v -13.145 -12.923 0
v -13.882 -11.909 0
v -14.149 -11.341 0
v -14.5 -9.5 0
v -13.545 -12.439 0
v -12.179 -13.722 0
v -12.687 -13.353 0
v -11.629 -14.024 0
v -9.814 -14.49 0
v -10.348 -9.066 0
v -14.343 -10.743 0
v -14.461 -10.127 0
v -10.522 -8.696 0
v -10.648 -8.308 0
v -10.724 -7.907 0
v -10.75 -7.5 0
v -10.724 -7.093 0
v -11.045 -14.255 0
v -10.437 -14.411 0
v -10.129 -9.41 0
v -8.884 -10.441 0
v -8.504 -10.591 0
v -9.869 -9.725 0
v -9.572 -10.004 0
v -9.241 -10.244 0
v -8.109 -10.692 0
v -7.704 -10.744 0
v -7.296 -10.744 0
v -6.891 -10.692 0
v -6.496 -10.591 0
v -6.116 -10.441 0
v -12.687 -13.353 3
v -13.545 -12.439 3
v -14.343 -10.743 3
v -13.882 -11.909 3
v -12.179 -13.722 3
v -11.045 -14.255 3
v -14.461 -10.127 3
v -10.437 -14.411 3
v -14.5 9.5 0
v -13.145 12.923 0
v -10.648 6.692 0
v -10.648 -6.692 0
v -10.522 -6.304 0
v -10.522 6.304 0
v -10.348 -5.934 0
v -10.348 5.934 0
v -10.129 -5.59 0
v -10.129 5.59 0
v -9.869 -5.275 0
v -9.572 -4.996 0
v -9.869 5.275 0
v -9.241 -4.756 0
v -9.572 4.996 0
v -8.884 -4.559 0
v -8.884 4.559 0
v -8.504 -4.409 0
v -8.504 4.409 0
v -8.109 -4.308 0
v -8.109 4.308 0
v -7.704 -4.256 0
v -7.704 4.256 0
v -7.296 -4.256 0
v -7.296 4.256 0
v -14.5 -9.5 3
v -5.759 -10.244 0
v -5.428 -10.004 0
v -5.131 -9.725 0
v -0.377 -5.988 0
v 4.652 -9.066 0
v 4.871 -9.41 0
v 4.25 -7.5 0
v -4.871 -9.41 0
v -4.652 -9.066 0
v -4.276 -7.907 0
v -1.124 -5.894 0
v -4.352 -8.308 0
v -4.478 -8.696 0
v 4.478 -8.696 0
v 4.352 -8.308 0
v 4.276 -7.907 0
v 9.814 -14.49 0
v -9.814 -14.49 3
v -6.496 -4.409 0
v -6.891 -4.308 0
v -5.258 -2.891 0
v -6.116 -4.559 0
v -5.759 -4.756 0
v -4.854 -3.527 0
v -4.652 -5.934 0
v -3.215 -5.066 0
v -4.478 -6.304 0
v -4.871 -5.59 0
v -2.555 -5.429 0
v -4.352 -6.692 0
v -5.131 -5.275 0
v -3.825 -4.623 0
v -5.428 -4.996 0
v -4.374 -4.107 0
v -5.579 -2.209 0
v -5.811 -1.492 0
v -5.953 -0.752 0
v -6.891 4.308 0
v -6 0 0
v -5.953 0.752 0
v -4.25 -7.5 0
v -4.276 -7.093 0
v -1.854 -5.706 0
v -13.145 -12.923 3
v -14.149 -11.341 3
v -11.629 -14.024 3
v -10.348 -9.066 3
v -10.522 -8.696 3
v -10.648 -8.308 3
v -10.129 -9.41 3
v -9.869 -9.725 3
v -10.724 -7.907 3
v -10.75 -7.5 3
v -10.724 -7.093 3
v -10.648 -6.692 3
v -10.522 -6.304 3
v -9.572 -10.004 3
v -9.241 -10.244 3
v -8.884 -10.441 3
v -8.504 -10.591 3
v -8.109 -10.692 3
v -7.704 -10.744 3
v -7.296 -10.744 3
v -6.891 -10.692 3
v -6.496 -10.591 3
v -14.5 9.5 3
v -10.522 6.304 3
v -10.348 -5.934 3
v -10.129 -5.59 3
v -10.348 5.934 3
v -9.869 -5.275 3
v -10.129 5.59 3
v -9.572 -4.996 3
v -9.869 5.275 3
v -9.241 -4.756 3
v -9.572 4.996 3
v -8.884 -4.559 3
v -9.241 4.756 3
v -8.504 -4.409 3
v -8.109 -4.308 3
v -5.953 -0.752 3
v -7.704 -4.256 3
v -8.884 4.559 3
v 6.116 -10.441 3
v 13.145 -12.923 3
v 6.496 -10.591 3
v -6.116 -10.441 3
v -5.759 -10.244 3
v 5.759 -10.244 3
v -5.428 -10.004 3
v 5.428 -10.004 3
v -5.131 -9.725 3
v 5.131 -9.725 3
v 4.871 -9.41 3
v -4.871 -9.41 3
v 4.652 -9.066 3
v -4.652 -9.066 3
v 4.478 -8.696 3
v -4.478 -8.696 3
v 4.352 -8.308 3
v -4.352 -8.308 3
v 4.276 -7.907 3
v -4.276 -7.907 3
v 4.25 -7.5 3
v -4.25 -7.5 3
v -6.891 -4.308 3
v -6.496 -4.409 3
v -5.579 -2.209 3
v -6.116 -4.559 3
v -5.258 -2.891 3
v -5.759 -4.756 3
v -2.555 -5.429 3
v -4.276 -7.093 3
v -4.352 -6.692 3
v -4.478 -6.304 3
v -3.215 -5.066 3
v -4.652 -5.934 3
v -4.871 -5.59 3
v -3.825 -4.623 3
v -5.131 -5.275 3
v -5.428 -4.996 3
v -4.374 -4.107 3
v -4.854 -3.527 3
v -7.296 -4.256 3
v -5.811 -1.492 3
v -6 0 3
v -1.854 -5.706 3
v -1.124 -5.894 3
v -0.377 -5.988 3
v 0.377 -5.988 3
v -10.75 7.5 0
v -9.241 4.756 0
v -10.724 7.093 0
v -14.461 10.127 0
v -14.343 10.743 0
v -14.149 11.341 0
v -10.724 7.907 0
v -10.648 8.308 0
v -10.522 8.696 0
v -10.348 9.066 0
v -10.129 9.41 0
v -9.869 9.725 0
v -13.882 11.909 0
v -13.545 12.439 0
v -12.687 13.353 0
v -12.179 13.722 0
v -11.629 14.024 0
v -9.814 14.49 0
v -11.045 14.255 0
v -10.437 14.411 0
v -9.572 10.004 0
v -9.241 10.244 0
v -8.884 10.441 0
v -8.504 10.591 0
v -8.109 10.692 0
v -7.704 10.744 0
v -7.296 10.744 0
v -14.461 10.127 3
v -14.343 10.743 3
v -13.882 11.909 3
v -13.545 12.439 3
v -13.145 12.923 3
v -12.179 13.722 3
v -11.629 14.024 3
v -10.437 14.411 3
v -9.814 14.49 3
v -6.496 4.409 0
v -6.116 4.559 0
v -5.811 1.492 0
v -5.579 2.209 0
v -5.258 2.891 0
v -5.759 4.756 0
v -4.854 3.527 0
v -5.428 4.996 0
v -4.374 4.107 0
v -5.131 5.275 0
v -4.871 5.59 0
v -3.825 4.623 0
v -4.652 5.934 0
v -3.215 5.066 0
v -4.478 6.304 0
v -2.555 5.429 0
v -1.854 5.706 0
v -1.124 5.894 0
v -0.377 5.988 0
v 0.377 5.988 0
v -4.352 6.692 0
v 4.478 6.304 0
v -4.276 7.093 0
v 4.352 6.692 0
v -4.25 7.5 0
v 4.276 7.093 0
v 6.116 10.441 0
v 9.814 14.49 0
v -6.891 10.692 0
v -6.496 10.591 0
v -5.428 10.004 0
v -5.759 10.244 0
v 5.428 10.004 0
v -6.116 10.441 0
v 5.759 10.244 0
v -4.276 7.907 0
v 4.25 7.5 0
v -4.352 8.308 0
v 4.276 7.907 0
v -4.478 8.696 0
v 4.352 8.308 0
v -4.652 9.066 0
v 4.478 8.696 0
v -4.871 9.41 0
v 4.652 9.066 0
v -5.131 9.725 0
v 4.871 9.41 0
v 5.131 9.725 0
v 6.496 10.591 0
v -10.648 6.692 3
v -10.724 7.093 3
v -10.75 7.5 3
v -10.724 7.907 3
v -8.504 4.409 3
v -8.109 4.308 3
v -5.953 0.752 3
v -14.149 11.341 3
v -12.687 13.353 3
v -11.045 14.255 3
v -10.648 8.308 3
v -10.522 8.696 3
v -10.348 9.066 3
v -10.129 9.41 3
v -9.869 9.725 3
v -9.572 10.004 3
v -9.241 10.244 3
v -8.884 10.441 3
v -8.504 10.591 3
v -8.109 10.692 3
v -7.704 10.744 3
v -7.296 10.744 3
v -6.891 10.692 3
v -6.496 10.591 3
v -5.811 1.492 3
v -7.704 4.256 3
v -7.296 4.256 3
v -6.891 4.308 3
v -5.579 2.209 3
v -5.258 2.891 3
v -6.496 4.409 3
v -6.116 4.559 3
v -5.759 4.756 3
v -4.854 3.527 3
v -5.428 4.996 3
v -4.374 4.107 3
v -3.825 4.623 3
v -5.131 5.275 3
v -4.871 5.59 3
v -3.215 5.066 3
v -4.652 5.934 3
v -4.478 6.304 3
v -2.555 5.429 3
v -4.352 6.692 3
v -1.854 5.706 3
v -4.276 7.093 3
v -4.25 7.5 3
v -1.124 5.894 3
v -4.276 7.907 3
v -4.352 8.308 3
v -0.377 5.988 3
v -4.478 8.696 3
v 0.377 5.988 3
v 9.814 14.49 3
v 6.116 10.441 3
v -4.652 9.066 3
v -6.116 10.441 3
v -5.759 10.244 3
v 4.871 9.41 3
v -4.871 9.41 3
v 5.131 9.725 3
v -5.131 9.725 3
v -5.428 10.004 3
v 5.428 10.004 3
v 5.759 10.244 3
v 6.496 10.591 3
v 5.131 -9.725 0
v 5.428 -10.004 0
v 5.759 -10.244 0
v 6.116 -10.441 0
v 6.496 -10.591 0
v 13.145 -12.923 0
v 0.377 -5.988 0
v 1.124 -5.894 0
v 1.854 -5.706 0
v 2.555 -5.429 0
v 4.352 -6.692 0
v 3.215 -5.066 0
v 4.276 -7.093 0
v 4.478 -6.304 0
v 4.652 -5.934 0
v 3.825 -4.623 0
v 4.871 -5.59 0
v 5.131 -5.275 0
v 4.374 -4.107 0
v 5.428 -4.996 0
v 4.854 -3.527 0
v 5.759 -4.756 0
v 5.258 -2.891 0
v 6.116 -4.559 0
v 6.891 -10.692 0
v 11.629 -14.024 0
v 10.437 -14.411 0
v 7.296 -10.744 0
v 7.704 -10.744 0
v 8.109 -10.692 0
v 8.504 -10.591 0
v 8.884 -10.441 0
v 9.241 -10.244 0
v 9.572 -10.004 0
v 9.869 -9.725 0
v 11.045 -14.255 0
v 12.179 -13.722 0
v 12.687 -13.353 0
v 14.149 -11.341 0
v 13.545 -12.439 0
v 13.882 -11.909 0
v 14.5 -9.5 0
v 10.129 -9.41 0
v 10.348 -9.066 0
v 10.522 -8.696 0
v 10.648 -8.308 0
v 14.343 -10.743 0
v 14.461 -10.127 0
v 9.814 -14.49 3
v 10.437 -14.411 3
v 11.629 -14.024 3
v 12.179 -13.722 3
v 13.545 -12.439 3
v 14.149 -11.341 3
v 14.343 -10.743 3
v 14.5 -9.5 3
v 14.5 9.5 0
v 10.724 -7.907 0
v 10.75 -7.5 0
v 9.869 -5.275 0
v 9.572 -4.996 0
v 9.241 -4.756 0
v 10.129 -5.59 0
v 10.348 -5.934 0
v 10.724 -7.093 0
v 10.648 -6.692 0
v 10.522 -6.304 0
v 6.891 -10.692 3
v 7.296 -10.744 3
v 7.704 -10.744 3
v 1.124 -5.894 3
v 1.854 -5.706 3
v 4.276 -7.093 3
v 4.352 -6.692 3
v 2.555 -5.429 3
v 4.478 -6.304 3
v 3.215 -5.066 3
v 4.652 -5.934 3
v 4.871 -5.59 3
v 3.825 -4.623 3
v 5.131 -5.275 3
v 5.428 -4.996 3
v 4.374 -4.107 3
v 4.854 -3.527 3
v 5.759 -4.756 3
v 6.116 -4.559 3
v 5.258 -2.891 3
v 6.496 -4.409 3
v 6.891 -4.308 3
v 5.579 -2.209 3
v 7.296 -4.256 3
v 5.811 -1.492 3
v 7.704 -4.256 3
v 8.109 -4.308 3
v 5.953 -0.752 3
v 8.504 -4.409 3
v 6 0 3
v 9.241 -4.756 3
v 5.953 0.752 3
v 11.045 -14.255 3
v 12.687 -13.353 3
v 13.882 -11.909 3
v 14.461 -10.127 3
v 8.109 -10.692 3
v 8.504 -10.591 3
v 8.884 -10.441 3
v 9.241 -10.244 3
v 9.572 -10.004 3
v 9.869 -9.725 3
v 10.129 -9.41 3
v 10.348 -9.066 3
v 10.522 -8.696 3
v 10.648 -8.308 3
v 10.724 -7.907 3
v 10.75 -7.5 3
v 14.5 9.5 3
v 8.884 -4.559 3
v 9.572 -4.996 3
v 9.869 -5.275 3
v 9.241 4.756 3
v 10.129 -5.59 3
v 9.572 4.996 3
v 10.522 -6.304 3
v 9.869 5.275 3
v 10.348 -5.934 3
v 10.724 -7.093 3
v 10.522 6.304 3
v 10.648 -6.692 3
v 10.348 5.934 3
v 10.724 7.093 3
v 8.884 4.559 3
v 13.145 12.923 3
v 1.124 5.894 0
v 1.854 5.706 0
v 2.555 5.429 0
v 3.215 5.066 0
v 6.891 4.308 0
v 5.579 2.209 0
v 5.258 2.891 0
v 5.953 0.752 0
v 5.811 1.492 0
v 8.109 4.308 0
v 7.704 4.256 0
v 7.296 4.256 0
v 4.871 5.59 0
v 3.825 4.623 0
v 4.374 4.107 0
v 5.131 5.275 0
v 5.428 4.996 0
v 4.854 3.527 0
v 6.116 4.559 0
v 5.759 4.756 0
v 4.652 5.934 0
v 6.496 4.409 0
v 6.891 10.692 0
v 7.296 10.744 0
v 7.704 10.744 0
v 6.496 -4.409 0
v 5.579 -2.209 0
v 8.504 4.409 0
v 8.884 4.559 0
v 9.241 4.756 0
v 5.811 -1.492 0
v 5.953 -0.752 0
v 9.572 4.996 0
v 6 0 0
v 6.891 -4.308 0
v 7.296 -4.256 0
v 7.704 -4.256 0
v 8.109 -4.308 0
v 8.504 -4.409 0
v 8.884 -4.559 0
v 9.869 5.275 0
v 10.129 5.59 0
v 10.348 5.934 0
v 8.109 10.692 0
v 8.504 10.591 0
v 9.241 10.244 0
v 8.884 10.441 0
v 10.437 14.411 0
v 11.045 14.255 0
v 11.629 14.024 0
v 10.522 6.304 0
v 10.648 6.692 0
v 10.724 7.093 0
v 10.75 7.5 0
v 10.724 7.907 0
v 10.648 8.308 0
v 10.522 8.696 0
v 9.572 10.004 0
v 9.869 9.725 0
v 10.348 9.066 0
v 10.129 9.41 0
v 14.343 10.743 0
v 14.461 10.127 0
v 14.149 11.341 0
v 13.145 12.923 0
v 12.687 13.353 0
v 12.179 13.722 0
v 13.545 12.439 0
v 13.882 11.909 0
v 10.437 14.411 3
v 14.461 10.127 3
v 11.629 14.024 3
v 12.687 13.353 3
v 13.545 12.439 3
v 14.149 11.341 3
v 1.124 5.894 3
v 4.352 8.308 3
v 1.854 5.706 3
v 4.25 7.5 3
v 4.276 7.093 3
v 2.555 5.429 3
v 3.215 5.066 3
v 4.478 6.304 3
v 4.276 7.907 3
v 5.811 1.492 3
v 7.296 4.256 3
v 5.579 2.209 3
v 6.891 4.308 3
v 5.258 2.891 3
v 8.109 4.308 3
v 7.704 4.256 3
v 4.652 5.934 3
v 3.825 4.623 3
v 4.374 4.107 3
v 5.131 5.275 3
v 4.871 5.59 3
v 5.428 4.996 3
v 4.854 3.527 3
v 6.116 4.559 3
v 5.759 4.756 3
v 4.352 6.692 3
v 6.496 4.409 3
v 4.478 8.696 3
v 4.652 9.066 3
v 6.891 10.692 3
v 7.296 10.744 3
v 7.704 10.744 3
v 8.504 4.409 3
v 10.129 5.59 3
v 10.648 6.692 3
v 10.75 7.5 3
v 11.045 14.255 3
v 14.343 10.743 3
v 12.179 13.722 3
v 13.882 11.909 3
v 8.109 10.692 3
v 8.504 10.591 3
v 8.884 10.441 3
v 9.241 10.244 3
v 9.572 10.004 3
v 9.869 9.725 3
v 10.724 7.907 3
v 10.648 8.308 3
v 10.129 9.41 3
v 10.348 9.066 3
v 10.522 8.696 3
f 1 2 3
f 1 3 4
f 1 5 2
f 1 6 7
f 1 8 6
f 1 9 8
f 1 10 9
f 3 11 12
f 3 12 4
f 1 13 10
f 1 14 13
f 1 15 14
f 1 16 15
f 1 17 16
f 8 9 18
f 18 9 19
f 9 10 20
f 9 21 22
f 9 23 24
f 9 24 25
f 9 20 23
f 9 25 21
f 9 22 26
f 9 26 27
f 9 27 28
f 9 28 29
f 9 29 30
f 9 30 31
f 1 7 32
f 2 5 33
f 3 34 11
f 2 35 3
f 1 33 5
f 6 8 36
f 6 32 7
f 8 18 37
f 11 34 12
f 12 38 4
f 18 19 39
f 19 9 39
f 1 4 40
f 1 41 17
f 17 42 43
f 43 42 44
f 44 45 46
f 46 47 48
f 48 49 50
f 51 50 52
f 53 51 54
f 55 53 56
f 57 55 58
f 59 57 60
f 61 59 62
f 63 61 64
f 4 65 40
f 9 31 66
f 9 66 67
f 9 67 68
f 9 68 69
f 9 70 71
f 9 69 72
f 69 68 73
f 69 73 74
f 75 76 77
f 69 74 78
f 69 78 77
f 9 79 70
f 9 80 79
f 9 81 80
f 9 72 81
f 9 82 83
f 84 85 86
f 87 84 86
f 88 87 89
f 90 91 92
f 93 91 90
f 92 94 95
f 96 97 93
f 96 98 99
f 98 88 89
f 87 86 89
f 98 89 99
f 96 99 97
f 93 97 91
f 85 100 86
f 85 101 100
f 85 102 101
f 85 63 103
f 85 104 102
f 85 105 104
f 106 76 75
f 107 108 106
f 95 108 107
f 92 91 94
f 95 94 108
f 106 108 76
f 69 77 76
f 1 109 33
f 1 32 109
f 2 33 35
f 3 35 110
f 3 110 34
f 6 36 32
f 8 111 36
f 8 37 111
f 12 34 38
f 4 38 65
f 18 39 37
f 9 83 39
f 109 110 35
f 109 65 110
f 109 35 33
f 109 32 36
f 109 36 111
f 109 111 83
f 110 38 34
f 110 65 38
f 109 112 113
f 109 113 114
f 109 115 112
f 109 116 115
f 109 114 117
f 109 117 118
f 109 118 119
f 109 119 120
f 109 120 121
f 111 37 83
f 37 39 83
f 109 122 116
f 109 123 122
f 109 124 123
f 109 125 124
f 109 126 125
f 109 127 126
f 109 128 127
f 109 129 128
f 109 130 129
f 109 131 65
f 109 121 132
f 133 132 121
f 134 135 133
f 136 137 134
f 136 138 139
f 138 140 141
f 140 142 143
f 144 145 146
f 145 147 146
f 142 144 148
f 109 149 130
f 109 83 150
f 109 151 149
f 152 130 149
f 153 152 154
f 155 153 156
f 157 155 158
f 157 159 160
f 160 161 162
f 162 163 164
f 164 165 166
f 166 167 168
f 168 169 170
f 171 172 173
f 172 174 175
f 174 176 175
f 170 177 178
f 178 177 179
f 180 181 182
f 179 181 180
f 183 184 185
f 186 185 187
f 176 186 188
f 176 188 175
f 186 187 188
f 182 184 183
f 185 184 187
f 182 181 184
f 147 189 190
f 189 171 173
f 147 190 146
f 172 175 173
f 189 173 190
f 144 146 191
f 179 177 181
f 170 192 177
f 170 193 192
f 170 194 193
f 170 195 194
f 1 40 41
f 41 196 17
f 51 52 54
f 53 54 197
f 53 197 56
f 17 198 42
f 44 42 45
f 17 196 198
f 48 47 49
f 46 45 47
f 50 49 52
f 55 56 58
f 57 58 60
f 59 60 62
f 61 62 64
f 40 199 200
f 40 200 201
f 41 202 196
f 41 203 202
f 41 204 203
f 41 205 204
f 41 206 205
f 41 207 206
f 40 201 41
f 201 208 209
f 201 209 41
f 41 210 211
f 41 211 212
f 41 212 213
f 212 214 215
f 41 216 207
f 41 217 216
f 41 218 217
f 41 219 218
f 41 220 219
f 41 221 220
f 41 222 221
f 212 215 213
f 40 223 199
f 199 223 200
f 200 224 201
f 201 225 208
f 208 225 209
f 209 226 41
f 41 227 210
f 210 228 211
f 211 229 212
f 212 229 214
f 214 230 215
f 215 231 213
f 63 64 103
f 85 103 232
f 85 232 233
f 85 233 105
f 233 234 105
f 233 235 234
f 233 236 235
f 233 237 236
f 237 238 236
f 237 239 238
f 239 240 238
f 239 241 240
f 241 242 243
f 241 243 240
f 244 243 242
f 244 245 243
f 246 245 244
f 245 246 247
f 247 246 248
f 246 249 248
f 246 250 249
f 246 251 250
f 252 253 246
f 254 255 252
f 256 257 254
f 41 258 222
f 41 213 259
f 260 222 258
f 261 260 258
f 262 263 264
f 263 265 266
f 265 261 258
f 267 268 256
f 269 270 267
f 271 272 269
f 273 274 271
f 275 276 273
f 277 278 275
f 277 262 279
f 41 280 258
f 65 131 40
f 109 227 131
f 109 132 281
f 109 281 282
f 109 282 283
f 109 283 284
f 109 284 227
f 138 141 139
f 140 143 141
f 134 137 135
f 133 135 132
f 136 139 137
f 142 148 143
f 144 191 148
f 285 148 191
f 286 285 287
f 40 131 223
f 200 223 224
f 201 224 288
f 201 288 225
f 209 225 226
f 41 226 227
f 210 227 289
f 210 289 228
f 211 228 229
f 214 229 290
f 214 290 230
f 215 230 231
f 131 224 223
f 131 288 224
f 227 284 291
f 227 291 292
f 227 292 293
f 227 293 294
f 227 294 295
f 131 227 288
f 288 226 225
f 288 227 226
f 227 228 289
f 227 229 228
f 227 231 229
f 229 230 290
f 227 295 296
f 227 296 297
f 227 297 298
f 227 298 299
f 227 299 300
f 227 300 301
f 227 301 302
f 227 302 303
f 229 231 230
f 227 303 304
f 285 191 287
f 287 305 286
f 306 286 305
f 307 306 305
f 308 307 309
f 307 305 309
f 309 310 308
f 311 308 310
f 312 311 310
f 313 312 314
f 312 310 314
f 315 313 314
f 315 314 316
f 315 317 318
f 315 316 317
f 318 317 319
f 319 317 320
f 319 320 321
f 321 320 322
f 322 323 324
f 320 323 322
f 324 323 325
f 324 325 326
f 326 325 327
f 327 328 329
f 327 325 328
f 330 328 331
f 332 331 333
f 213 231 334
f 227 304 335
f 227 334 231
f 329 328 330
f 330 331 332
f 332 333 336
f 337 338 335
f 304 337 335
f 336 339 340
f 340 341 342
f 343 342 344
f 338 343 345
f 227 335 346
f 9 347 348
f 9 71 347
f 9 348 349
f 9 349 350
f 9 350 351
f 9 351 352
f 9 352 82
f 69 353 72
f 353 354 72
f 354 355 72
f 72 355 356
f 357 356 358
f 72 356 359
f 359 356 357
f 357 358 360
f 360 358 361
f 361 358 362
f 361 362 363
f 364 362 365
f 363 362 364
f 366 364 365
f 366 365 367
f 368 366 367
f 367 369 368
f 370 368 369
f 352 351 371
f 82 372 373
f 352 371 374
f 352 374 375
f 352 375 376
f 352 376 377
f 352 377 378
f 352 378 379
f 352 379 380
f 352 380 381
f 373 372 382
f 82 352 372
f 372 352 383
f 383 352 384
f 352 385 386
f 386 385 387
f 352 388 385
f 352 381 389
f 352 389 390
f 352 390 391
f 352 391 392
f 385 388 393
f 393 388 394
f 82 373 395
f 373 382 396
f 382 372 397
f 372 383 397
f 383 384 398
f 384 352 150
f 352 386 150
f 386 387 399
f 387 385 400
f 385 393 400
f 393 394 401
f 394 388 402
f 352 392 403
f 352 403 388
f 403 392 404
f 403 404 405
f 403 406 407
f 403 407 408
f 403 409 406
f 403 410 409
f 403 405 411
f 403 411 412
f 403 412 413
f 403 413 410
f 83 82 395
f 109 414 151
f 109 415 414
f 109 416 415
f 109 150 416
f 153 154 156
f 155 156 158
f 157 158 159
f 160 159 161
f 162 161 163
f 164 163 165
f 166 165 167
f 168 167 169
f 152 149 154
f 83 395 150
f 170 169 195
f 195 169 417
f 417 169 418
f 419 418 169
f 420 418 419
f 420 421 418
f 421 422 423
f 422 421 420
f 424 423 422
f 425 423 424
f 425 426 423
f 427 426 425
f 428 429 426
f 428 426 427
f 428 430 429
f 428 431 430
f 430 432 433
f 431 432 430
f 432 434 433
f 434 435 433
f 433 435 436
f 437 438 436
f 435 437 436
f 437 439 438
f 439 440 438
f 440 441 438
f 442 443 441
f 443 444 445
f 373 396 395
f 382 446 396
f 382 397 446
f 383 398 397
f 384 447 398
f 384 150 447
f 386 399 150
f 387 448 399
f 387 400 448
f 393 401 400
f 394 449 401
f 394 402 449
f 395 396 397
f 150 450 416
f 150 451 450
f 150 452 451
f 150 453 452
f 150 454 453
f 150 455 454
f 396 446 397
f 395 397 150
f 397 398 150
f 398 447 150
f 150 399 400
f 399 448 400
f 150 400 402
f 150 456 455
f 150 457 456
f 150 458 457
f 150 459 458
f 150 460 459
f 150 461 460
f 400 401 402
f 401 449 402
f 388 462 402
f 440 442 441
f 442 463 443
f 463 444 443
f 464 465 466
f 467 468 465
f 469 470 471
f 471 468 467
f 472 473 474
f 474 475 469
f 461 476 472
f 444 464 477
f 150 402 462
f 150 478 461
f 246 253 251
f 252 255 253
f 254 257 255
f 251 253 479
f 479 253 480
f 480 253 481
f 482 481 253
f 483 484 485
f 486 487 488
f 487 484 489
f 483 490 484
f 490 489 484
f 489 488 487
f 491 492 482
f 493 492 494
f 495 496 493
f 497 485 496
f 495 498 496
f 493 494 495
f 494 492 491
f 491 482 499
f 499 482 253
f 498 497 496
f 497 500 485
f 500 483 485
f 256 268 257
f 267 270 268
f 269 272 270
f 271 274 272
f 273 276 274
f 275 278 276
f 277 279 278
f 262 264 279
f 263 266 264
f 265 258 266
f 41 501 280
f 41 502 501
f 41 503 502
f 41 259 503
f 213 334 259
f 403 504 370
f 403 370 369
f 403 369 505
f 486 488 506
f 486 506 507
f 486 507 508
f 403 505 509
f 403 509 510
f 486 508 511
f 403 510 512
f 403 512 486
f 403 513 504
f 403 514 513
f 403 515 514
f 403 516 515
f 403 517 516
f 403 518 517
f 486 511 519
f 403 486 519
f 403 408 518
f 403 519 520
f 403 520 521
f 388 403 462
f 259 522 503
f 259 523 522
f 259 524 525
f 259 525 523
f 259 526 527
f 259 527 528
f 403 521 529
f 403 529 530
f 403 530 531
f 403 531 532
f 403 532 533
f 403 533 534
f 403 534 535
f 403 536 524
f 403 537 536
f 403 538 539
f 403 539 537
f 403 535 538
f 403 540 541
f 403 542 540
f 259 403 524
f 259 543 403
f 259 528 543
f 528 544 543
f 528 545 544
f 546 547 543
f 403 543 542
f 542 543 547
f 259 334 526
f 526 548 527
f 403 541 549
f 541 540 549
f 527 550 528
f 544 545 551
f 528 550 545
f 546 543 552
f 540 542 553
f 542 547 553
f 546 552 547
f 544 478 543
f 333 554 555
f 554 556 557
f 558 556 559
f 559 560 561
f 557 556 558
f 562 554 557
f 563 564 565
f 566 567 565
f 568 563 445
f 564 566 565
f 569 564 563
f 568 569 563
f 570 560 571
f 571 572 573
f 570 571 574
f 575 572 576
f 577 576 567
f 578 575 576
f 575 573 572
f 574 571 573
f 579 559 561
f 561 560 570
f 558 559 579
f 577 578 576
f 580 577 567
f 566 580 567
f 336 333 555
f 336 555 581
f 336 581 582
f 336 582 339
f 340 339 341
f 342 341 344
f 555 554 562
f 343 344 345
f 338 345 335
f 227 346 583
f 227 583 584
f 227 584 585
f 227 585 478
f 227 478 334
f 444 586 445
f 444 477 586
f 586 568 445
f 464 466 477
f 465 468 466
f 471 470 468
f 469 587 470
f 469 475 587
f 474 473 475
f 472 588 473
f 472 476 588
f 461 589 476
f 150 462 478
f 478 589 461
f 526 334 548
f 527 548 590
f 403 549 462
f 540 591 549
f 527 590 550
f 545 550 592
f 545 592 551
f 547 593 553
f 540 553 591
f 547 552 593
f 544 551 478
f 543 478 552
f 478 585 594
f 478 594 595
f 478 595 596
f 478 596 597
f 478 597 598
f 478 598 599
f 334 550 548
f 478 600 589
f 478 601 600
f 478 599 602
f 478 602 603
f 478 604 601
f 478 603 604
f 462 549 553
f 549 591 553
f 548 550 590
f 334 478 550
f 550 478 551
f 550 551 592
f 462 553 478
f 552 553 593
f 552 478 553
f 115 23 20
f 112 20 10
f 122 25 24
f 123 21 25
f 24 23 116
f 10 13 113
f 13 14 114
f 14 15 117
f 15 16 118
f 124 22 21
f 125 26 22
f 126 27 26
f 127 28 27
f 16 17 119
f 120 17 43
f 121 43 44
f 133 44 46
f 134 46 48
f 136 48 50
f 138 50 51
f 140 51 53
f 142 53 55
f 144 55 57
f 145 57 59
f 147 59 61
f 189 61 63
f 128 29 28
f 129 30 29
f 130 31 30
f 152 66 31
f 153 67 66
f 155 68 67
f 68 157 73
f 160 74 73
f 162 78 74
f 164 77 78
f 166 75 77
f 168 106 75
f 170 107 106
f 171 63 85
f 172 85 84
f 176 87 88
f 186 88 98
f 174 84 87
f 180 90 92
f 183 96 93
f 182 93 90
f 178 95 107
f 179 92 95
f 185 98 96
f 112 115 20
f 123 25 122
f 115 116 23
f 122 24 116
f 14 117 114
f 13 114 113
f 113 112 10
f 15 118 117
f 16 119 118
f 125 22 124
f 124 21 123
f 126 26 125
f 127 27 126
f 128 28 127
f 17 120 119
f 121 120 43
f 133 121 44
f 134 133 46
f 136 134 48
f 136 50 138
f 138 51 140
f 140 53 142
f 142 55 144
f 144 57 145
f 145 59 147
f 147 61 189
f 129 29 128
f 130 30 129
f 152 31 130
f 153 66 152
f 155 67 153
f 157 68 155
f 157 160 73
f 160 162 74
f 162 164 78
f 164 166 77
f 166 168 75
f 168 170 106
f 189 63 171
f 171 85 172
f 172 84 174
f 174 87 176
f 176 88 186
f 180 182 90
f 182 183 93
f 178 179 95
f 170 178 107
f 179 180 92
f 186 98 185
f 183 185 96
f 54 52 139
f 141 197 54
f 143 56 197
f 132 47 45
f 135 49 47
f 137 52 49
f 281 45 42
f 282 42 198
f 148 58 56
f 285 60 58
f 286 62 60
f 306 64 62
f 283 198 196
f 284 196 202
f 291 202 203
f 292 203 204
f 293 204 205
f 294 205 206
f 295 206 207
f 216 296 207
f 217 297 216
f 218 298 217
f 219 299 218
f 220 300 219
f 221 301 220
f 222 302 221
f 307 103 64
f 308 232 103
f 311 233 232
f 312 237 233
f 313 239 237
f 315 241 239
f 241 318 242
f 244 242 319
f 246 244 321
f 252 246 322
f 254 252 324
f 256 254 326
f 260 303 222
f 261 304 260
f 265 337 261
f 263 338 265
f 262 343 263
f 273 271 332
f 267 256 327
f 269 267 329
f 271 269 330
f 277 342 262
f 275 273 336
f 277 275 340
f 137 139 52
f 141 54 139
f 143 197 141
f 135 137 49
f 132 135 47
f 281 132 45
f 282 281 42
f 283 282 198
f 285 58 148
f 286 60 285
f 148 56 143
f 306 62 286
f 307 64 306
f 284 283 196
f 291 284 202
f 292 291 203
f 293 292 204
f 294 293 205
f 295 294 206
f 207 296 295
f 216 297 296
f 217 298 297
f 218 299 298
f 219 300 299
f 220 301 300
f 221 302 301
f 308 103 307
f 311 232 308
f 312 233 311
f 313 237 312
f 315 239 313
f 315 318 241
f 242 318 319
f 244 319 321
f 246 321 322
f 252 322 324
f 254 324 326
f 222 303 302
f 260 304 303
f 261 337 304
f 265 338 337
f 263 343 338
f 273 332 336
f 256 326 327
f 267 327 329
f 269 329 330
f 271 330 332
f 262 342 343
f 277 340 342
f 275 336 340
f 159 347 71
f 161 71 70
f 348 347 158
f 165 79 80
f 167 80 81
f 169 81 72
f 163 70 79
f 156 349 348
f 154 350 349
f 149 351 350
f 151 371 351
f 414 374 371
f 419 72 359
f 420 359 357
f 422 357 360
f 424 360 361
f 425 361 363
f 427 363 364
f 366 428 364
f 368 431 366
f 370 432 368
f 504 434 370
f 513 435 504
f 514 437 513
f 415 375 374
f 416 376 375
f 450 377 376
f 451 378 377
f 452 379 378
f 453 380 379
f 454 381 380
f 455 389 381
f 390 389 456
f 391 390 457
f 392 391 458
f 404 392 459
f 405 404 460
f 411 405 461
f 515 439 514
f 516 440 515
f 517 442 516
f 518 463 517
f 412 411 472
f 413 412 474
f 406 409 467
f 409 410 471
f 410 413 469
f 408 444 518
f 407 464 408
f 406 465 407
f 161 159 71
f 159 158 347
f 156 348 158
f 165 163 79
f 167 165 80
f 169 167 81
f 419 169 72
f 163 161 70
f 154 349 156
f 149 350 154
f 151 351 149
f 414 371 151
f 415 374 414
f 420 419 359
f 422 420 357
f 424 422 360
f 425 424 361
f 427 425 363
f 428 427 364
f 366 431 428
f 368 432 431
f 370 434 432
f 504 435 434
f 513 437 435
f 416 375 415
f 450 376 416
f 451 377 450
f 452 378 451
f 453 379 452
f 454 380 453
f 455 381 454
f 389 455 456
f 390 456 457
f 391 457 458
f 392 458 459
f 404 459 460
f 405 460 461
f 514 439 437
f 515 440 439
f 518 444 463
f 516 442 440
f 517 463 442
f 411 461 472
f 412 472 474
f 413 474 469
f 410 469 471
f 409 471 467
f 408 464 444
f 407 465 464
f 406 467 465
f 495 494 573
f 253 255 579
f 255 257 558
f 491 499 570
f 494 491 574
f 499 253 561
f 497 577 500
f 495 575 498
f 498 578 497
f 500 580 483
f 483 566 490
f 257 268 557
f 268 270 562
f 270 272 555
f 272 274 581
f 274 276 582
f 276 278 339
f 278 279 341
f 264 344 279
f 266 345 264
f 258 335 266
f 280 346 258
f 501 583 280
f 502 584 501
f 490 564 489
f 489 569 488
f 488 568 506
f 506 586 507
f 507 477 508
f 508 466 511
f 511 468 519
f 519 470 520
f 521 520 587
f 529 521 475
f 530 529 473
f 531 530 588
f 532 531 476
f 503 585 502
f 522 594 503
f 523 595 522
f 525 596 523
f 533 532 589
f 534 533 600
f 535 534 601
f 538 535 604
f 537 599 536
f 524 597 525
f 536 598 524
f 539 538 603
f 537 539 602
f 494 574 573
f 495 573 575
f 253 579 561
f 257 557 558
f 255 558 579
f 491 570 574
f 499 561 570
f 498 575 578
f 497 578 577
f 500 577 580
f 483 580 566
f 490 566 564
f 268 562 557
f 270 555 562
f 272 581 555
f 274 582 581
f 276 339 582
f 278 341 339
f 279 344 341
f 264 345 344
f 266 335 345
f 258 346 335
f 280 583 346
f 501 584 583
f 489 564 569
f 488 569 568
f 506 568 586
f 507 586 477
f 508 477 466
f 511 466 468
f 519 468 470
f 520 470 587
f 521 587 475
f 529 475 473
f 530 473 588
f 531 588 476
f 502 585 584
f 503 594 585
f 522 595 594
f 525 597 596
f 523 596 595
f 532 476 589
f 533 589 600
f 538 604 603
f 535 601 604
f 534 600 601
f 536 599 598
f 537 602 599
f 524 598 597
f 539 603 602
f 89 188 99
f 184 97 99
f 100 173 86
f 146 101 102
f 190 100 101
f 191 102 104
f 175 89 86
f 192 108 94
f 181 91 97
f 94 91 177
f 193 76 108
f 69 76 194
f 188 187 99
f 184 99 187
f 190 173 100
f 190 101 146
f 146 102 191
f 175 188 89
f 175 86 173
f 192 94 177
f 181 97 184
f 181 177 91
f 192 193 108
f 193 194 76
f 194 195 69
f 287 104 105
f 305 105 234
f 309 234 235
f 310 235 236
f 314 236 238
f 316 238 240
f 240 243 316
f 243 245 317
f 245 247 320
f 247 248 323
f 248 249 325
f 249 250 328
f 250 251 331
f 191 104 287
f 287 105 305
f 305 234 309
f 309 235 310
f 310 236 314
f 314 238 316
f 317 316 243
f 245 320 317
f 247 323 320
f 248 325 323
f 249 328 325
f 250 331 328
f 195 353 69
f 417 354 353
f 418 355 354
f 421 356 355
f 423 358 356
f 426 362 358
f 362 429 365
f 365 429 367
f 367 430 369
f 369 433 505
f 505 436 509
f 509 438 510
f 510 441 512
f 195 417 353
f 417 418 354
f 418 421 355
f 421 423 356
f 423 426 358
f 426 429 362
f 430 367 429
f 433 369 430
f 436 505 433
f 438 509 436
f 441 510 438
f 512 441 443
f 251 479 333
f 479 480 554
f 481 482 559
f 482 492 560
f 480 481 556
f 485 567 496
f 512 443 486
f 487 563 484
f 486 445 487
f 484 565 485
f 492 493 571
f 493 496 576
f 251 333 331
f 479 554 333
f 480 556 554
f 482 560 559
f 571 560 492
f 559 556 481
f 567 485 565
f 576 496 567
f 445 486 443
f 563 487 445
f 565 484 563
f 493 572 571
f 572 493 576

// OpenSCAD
$fn = 50;

difference() {
	union() {
		hull() {
			translate(v = [-9.5, 9.5, 0]) {
				cylinder(h = 3, r = 5);
			}
			translate(v = [9.5, 9.5, 0]) {
				cylinder(h = 3, r = 5);
			}
			translate(v = [-9.5, -9.5, 0]) {
				cylinder(h = 3, r = 5);
			}
			translate(v = [9.5, -9.5, 0]) {
				cylinder(h = 3, r = 5);
			}
		}
	}
	union() {
		translate(v = [-7.5, -7.5, -100.0]) {
			cylinder(h = 200, r = 3.25);
		}
		translate(v = [-7.5, 7.5, -100.0]) {
			cylinder(h = 200, r = 3.25);
		}
		translate(v = [7.5, -7.5, -100.0]) {
			cylinder(h = 200, r = 3.25);
		}
		translate(v = [7.5, 7.5, -100.0]) {
			cylinder(h = 200, r = 3.25);
		}
		translate(v = [-7.5, -7.5, -100.0]) {
			cylinder(h = 200, r = 1.8);
		}
		translate(v = [-7.5, 7.5, -100.0]) {
			cylinder(h = 200, r = 1.8);
		}
		translate(v = [7.5, -7.5, -100.0]) {
			cylinder(h = 200, r = 1.8);
		}
		translate(v = [7.5, 7.5, -100.0]) {
			cylinder(h = 200, r = 1.8);
		}
		cylinder(h = 3, r = 6.0);
	}
}
